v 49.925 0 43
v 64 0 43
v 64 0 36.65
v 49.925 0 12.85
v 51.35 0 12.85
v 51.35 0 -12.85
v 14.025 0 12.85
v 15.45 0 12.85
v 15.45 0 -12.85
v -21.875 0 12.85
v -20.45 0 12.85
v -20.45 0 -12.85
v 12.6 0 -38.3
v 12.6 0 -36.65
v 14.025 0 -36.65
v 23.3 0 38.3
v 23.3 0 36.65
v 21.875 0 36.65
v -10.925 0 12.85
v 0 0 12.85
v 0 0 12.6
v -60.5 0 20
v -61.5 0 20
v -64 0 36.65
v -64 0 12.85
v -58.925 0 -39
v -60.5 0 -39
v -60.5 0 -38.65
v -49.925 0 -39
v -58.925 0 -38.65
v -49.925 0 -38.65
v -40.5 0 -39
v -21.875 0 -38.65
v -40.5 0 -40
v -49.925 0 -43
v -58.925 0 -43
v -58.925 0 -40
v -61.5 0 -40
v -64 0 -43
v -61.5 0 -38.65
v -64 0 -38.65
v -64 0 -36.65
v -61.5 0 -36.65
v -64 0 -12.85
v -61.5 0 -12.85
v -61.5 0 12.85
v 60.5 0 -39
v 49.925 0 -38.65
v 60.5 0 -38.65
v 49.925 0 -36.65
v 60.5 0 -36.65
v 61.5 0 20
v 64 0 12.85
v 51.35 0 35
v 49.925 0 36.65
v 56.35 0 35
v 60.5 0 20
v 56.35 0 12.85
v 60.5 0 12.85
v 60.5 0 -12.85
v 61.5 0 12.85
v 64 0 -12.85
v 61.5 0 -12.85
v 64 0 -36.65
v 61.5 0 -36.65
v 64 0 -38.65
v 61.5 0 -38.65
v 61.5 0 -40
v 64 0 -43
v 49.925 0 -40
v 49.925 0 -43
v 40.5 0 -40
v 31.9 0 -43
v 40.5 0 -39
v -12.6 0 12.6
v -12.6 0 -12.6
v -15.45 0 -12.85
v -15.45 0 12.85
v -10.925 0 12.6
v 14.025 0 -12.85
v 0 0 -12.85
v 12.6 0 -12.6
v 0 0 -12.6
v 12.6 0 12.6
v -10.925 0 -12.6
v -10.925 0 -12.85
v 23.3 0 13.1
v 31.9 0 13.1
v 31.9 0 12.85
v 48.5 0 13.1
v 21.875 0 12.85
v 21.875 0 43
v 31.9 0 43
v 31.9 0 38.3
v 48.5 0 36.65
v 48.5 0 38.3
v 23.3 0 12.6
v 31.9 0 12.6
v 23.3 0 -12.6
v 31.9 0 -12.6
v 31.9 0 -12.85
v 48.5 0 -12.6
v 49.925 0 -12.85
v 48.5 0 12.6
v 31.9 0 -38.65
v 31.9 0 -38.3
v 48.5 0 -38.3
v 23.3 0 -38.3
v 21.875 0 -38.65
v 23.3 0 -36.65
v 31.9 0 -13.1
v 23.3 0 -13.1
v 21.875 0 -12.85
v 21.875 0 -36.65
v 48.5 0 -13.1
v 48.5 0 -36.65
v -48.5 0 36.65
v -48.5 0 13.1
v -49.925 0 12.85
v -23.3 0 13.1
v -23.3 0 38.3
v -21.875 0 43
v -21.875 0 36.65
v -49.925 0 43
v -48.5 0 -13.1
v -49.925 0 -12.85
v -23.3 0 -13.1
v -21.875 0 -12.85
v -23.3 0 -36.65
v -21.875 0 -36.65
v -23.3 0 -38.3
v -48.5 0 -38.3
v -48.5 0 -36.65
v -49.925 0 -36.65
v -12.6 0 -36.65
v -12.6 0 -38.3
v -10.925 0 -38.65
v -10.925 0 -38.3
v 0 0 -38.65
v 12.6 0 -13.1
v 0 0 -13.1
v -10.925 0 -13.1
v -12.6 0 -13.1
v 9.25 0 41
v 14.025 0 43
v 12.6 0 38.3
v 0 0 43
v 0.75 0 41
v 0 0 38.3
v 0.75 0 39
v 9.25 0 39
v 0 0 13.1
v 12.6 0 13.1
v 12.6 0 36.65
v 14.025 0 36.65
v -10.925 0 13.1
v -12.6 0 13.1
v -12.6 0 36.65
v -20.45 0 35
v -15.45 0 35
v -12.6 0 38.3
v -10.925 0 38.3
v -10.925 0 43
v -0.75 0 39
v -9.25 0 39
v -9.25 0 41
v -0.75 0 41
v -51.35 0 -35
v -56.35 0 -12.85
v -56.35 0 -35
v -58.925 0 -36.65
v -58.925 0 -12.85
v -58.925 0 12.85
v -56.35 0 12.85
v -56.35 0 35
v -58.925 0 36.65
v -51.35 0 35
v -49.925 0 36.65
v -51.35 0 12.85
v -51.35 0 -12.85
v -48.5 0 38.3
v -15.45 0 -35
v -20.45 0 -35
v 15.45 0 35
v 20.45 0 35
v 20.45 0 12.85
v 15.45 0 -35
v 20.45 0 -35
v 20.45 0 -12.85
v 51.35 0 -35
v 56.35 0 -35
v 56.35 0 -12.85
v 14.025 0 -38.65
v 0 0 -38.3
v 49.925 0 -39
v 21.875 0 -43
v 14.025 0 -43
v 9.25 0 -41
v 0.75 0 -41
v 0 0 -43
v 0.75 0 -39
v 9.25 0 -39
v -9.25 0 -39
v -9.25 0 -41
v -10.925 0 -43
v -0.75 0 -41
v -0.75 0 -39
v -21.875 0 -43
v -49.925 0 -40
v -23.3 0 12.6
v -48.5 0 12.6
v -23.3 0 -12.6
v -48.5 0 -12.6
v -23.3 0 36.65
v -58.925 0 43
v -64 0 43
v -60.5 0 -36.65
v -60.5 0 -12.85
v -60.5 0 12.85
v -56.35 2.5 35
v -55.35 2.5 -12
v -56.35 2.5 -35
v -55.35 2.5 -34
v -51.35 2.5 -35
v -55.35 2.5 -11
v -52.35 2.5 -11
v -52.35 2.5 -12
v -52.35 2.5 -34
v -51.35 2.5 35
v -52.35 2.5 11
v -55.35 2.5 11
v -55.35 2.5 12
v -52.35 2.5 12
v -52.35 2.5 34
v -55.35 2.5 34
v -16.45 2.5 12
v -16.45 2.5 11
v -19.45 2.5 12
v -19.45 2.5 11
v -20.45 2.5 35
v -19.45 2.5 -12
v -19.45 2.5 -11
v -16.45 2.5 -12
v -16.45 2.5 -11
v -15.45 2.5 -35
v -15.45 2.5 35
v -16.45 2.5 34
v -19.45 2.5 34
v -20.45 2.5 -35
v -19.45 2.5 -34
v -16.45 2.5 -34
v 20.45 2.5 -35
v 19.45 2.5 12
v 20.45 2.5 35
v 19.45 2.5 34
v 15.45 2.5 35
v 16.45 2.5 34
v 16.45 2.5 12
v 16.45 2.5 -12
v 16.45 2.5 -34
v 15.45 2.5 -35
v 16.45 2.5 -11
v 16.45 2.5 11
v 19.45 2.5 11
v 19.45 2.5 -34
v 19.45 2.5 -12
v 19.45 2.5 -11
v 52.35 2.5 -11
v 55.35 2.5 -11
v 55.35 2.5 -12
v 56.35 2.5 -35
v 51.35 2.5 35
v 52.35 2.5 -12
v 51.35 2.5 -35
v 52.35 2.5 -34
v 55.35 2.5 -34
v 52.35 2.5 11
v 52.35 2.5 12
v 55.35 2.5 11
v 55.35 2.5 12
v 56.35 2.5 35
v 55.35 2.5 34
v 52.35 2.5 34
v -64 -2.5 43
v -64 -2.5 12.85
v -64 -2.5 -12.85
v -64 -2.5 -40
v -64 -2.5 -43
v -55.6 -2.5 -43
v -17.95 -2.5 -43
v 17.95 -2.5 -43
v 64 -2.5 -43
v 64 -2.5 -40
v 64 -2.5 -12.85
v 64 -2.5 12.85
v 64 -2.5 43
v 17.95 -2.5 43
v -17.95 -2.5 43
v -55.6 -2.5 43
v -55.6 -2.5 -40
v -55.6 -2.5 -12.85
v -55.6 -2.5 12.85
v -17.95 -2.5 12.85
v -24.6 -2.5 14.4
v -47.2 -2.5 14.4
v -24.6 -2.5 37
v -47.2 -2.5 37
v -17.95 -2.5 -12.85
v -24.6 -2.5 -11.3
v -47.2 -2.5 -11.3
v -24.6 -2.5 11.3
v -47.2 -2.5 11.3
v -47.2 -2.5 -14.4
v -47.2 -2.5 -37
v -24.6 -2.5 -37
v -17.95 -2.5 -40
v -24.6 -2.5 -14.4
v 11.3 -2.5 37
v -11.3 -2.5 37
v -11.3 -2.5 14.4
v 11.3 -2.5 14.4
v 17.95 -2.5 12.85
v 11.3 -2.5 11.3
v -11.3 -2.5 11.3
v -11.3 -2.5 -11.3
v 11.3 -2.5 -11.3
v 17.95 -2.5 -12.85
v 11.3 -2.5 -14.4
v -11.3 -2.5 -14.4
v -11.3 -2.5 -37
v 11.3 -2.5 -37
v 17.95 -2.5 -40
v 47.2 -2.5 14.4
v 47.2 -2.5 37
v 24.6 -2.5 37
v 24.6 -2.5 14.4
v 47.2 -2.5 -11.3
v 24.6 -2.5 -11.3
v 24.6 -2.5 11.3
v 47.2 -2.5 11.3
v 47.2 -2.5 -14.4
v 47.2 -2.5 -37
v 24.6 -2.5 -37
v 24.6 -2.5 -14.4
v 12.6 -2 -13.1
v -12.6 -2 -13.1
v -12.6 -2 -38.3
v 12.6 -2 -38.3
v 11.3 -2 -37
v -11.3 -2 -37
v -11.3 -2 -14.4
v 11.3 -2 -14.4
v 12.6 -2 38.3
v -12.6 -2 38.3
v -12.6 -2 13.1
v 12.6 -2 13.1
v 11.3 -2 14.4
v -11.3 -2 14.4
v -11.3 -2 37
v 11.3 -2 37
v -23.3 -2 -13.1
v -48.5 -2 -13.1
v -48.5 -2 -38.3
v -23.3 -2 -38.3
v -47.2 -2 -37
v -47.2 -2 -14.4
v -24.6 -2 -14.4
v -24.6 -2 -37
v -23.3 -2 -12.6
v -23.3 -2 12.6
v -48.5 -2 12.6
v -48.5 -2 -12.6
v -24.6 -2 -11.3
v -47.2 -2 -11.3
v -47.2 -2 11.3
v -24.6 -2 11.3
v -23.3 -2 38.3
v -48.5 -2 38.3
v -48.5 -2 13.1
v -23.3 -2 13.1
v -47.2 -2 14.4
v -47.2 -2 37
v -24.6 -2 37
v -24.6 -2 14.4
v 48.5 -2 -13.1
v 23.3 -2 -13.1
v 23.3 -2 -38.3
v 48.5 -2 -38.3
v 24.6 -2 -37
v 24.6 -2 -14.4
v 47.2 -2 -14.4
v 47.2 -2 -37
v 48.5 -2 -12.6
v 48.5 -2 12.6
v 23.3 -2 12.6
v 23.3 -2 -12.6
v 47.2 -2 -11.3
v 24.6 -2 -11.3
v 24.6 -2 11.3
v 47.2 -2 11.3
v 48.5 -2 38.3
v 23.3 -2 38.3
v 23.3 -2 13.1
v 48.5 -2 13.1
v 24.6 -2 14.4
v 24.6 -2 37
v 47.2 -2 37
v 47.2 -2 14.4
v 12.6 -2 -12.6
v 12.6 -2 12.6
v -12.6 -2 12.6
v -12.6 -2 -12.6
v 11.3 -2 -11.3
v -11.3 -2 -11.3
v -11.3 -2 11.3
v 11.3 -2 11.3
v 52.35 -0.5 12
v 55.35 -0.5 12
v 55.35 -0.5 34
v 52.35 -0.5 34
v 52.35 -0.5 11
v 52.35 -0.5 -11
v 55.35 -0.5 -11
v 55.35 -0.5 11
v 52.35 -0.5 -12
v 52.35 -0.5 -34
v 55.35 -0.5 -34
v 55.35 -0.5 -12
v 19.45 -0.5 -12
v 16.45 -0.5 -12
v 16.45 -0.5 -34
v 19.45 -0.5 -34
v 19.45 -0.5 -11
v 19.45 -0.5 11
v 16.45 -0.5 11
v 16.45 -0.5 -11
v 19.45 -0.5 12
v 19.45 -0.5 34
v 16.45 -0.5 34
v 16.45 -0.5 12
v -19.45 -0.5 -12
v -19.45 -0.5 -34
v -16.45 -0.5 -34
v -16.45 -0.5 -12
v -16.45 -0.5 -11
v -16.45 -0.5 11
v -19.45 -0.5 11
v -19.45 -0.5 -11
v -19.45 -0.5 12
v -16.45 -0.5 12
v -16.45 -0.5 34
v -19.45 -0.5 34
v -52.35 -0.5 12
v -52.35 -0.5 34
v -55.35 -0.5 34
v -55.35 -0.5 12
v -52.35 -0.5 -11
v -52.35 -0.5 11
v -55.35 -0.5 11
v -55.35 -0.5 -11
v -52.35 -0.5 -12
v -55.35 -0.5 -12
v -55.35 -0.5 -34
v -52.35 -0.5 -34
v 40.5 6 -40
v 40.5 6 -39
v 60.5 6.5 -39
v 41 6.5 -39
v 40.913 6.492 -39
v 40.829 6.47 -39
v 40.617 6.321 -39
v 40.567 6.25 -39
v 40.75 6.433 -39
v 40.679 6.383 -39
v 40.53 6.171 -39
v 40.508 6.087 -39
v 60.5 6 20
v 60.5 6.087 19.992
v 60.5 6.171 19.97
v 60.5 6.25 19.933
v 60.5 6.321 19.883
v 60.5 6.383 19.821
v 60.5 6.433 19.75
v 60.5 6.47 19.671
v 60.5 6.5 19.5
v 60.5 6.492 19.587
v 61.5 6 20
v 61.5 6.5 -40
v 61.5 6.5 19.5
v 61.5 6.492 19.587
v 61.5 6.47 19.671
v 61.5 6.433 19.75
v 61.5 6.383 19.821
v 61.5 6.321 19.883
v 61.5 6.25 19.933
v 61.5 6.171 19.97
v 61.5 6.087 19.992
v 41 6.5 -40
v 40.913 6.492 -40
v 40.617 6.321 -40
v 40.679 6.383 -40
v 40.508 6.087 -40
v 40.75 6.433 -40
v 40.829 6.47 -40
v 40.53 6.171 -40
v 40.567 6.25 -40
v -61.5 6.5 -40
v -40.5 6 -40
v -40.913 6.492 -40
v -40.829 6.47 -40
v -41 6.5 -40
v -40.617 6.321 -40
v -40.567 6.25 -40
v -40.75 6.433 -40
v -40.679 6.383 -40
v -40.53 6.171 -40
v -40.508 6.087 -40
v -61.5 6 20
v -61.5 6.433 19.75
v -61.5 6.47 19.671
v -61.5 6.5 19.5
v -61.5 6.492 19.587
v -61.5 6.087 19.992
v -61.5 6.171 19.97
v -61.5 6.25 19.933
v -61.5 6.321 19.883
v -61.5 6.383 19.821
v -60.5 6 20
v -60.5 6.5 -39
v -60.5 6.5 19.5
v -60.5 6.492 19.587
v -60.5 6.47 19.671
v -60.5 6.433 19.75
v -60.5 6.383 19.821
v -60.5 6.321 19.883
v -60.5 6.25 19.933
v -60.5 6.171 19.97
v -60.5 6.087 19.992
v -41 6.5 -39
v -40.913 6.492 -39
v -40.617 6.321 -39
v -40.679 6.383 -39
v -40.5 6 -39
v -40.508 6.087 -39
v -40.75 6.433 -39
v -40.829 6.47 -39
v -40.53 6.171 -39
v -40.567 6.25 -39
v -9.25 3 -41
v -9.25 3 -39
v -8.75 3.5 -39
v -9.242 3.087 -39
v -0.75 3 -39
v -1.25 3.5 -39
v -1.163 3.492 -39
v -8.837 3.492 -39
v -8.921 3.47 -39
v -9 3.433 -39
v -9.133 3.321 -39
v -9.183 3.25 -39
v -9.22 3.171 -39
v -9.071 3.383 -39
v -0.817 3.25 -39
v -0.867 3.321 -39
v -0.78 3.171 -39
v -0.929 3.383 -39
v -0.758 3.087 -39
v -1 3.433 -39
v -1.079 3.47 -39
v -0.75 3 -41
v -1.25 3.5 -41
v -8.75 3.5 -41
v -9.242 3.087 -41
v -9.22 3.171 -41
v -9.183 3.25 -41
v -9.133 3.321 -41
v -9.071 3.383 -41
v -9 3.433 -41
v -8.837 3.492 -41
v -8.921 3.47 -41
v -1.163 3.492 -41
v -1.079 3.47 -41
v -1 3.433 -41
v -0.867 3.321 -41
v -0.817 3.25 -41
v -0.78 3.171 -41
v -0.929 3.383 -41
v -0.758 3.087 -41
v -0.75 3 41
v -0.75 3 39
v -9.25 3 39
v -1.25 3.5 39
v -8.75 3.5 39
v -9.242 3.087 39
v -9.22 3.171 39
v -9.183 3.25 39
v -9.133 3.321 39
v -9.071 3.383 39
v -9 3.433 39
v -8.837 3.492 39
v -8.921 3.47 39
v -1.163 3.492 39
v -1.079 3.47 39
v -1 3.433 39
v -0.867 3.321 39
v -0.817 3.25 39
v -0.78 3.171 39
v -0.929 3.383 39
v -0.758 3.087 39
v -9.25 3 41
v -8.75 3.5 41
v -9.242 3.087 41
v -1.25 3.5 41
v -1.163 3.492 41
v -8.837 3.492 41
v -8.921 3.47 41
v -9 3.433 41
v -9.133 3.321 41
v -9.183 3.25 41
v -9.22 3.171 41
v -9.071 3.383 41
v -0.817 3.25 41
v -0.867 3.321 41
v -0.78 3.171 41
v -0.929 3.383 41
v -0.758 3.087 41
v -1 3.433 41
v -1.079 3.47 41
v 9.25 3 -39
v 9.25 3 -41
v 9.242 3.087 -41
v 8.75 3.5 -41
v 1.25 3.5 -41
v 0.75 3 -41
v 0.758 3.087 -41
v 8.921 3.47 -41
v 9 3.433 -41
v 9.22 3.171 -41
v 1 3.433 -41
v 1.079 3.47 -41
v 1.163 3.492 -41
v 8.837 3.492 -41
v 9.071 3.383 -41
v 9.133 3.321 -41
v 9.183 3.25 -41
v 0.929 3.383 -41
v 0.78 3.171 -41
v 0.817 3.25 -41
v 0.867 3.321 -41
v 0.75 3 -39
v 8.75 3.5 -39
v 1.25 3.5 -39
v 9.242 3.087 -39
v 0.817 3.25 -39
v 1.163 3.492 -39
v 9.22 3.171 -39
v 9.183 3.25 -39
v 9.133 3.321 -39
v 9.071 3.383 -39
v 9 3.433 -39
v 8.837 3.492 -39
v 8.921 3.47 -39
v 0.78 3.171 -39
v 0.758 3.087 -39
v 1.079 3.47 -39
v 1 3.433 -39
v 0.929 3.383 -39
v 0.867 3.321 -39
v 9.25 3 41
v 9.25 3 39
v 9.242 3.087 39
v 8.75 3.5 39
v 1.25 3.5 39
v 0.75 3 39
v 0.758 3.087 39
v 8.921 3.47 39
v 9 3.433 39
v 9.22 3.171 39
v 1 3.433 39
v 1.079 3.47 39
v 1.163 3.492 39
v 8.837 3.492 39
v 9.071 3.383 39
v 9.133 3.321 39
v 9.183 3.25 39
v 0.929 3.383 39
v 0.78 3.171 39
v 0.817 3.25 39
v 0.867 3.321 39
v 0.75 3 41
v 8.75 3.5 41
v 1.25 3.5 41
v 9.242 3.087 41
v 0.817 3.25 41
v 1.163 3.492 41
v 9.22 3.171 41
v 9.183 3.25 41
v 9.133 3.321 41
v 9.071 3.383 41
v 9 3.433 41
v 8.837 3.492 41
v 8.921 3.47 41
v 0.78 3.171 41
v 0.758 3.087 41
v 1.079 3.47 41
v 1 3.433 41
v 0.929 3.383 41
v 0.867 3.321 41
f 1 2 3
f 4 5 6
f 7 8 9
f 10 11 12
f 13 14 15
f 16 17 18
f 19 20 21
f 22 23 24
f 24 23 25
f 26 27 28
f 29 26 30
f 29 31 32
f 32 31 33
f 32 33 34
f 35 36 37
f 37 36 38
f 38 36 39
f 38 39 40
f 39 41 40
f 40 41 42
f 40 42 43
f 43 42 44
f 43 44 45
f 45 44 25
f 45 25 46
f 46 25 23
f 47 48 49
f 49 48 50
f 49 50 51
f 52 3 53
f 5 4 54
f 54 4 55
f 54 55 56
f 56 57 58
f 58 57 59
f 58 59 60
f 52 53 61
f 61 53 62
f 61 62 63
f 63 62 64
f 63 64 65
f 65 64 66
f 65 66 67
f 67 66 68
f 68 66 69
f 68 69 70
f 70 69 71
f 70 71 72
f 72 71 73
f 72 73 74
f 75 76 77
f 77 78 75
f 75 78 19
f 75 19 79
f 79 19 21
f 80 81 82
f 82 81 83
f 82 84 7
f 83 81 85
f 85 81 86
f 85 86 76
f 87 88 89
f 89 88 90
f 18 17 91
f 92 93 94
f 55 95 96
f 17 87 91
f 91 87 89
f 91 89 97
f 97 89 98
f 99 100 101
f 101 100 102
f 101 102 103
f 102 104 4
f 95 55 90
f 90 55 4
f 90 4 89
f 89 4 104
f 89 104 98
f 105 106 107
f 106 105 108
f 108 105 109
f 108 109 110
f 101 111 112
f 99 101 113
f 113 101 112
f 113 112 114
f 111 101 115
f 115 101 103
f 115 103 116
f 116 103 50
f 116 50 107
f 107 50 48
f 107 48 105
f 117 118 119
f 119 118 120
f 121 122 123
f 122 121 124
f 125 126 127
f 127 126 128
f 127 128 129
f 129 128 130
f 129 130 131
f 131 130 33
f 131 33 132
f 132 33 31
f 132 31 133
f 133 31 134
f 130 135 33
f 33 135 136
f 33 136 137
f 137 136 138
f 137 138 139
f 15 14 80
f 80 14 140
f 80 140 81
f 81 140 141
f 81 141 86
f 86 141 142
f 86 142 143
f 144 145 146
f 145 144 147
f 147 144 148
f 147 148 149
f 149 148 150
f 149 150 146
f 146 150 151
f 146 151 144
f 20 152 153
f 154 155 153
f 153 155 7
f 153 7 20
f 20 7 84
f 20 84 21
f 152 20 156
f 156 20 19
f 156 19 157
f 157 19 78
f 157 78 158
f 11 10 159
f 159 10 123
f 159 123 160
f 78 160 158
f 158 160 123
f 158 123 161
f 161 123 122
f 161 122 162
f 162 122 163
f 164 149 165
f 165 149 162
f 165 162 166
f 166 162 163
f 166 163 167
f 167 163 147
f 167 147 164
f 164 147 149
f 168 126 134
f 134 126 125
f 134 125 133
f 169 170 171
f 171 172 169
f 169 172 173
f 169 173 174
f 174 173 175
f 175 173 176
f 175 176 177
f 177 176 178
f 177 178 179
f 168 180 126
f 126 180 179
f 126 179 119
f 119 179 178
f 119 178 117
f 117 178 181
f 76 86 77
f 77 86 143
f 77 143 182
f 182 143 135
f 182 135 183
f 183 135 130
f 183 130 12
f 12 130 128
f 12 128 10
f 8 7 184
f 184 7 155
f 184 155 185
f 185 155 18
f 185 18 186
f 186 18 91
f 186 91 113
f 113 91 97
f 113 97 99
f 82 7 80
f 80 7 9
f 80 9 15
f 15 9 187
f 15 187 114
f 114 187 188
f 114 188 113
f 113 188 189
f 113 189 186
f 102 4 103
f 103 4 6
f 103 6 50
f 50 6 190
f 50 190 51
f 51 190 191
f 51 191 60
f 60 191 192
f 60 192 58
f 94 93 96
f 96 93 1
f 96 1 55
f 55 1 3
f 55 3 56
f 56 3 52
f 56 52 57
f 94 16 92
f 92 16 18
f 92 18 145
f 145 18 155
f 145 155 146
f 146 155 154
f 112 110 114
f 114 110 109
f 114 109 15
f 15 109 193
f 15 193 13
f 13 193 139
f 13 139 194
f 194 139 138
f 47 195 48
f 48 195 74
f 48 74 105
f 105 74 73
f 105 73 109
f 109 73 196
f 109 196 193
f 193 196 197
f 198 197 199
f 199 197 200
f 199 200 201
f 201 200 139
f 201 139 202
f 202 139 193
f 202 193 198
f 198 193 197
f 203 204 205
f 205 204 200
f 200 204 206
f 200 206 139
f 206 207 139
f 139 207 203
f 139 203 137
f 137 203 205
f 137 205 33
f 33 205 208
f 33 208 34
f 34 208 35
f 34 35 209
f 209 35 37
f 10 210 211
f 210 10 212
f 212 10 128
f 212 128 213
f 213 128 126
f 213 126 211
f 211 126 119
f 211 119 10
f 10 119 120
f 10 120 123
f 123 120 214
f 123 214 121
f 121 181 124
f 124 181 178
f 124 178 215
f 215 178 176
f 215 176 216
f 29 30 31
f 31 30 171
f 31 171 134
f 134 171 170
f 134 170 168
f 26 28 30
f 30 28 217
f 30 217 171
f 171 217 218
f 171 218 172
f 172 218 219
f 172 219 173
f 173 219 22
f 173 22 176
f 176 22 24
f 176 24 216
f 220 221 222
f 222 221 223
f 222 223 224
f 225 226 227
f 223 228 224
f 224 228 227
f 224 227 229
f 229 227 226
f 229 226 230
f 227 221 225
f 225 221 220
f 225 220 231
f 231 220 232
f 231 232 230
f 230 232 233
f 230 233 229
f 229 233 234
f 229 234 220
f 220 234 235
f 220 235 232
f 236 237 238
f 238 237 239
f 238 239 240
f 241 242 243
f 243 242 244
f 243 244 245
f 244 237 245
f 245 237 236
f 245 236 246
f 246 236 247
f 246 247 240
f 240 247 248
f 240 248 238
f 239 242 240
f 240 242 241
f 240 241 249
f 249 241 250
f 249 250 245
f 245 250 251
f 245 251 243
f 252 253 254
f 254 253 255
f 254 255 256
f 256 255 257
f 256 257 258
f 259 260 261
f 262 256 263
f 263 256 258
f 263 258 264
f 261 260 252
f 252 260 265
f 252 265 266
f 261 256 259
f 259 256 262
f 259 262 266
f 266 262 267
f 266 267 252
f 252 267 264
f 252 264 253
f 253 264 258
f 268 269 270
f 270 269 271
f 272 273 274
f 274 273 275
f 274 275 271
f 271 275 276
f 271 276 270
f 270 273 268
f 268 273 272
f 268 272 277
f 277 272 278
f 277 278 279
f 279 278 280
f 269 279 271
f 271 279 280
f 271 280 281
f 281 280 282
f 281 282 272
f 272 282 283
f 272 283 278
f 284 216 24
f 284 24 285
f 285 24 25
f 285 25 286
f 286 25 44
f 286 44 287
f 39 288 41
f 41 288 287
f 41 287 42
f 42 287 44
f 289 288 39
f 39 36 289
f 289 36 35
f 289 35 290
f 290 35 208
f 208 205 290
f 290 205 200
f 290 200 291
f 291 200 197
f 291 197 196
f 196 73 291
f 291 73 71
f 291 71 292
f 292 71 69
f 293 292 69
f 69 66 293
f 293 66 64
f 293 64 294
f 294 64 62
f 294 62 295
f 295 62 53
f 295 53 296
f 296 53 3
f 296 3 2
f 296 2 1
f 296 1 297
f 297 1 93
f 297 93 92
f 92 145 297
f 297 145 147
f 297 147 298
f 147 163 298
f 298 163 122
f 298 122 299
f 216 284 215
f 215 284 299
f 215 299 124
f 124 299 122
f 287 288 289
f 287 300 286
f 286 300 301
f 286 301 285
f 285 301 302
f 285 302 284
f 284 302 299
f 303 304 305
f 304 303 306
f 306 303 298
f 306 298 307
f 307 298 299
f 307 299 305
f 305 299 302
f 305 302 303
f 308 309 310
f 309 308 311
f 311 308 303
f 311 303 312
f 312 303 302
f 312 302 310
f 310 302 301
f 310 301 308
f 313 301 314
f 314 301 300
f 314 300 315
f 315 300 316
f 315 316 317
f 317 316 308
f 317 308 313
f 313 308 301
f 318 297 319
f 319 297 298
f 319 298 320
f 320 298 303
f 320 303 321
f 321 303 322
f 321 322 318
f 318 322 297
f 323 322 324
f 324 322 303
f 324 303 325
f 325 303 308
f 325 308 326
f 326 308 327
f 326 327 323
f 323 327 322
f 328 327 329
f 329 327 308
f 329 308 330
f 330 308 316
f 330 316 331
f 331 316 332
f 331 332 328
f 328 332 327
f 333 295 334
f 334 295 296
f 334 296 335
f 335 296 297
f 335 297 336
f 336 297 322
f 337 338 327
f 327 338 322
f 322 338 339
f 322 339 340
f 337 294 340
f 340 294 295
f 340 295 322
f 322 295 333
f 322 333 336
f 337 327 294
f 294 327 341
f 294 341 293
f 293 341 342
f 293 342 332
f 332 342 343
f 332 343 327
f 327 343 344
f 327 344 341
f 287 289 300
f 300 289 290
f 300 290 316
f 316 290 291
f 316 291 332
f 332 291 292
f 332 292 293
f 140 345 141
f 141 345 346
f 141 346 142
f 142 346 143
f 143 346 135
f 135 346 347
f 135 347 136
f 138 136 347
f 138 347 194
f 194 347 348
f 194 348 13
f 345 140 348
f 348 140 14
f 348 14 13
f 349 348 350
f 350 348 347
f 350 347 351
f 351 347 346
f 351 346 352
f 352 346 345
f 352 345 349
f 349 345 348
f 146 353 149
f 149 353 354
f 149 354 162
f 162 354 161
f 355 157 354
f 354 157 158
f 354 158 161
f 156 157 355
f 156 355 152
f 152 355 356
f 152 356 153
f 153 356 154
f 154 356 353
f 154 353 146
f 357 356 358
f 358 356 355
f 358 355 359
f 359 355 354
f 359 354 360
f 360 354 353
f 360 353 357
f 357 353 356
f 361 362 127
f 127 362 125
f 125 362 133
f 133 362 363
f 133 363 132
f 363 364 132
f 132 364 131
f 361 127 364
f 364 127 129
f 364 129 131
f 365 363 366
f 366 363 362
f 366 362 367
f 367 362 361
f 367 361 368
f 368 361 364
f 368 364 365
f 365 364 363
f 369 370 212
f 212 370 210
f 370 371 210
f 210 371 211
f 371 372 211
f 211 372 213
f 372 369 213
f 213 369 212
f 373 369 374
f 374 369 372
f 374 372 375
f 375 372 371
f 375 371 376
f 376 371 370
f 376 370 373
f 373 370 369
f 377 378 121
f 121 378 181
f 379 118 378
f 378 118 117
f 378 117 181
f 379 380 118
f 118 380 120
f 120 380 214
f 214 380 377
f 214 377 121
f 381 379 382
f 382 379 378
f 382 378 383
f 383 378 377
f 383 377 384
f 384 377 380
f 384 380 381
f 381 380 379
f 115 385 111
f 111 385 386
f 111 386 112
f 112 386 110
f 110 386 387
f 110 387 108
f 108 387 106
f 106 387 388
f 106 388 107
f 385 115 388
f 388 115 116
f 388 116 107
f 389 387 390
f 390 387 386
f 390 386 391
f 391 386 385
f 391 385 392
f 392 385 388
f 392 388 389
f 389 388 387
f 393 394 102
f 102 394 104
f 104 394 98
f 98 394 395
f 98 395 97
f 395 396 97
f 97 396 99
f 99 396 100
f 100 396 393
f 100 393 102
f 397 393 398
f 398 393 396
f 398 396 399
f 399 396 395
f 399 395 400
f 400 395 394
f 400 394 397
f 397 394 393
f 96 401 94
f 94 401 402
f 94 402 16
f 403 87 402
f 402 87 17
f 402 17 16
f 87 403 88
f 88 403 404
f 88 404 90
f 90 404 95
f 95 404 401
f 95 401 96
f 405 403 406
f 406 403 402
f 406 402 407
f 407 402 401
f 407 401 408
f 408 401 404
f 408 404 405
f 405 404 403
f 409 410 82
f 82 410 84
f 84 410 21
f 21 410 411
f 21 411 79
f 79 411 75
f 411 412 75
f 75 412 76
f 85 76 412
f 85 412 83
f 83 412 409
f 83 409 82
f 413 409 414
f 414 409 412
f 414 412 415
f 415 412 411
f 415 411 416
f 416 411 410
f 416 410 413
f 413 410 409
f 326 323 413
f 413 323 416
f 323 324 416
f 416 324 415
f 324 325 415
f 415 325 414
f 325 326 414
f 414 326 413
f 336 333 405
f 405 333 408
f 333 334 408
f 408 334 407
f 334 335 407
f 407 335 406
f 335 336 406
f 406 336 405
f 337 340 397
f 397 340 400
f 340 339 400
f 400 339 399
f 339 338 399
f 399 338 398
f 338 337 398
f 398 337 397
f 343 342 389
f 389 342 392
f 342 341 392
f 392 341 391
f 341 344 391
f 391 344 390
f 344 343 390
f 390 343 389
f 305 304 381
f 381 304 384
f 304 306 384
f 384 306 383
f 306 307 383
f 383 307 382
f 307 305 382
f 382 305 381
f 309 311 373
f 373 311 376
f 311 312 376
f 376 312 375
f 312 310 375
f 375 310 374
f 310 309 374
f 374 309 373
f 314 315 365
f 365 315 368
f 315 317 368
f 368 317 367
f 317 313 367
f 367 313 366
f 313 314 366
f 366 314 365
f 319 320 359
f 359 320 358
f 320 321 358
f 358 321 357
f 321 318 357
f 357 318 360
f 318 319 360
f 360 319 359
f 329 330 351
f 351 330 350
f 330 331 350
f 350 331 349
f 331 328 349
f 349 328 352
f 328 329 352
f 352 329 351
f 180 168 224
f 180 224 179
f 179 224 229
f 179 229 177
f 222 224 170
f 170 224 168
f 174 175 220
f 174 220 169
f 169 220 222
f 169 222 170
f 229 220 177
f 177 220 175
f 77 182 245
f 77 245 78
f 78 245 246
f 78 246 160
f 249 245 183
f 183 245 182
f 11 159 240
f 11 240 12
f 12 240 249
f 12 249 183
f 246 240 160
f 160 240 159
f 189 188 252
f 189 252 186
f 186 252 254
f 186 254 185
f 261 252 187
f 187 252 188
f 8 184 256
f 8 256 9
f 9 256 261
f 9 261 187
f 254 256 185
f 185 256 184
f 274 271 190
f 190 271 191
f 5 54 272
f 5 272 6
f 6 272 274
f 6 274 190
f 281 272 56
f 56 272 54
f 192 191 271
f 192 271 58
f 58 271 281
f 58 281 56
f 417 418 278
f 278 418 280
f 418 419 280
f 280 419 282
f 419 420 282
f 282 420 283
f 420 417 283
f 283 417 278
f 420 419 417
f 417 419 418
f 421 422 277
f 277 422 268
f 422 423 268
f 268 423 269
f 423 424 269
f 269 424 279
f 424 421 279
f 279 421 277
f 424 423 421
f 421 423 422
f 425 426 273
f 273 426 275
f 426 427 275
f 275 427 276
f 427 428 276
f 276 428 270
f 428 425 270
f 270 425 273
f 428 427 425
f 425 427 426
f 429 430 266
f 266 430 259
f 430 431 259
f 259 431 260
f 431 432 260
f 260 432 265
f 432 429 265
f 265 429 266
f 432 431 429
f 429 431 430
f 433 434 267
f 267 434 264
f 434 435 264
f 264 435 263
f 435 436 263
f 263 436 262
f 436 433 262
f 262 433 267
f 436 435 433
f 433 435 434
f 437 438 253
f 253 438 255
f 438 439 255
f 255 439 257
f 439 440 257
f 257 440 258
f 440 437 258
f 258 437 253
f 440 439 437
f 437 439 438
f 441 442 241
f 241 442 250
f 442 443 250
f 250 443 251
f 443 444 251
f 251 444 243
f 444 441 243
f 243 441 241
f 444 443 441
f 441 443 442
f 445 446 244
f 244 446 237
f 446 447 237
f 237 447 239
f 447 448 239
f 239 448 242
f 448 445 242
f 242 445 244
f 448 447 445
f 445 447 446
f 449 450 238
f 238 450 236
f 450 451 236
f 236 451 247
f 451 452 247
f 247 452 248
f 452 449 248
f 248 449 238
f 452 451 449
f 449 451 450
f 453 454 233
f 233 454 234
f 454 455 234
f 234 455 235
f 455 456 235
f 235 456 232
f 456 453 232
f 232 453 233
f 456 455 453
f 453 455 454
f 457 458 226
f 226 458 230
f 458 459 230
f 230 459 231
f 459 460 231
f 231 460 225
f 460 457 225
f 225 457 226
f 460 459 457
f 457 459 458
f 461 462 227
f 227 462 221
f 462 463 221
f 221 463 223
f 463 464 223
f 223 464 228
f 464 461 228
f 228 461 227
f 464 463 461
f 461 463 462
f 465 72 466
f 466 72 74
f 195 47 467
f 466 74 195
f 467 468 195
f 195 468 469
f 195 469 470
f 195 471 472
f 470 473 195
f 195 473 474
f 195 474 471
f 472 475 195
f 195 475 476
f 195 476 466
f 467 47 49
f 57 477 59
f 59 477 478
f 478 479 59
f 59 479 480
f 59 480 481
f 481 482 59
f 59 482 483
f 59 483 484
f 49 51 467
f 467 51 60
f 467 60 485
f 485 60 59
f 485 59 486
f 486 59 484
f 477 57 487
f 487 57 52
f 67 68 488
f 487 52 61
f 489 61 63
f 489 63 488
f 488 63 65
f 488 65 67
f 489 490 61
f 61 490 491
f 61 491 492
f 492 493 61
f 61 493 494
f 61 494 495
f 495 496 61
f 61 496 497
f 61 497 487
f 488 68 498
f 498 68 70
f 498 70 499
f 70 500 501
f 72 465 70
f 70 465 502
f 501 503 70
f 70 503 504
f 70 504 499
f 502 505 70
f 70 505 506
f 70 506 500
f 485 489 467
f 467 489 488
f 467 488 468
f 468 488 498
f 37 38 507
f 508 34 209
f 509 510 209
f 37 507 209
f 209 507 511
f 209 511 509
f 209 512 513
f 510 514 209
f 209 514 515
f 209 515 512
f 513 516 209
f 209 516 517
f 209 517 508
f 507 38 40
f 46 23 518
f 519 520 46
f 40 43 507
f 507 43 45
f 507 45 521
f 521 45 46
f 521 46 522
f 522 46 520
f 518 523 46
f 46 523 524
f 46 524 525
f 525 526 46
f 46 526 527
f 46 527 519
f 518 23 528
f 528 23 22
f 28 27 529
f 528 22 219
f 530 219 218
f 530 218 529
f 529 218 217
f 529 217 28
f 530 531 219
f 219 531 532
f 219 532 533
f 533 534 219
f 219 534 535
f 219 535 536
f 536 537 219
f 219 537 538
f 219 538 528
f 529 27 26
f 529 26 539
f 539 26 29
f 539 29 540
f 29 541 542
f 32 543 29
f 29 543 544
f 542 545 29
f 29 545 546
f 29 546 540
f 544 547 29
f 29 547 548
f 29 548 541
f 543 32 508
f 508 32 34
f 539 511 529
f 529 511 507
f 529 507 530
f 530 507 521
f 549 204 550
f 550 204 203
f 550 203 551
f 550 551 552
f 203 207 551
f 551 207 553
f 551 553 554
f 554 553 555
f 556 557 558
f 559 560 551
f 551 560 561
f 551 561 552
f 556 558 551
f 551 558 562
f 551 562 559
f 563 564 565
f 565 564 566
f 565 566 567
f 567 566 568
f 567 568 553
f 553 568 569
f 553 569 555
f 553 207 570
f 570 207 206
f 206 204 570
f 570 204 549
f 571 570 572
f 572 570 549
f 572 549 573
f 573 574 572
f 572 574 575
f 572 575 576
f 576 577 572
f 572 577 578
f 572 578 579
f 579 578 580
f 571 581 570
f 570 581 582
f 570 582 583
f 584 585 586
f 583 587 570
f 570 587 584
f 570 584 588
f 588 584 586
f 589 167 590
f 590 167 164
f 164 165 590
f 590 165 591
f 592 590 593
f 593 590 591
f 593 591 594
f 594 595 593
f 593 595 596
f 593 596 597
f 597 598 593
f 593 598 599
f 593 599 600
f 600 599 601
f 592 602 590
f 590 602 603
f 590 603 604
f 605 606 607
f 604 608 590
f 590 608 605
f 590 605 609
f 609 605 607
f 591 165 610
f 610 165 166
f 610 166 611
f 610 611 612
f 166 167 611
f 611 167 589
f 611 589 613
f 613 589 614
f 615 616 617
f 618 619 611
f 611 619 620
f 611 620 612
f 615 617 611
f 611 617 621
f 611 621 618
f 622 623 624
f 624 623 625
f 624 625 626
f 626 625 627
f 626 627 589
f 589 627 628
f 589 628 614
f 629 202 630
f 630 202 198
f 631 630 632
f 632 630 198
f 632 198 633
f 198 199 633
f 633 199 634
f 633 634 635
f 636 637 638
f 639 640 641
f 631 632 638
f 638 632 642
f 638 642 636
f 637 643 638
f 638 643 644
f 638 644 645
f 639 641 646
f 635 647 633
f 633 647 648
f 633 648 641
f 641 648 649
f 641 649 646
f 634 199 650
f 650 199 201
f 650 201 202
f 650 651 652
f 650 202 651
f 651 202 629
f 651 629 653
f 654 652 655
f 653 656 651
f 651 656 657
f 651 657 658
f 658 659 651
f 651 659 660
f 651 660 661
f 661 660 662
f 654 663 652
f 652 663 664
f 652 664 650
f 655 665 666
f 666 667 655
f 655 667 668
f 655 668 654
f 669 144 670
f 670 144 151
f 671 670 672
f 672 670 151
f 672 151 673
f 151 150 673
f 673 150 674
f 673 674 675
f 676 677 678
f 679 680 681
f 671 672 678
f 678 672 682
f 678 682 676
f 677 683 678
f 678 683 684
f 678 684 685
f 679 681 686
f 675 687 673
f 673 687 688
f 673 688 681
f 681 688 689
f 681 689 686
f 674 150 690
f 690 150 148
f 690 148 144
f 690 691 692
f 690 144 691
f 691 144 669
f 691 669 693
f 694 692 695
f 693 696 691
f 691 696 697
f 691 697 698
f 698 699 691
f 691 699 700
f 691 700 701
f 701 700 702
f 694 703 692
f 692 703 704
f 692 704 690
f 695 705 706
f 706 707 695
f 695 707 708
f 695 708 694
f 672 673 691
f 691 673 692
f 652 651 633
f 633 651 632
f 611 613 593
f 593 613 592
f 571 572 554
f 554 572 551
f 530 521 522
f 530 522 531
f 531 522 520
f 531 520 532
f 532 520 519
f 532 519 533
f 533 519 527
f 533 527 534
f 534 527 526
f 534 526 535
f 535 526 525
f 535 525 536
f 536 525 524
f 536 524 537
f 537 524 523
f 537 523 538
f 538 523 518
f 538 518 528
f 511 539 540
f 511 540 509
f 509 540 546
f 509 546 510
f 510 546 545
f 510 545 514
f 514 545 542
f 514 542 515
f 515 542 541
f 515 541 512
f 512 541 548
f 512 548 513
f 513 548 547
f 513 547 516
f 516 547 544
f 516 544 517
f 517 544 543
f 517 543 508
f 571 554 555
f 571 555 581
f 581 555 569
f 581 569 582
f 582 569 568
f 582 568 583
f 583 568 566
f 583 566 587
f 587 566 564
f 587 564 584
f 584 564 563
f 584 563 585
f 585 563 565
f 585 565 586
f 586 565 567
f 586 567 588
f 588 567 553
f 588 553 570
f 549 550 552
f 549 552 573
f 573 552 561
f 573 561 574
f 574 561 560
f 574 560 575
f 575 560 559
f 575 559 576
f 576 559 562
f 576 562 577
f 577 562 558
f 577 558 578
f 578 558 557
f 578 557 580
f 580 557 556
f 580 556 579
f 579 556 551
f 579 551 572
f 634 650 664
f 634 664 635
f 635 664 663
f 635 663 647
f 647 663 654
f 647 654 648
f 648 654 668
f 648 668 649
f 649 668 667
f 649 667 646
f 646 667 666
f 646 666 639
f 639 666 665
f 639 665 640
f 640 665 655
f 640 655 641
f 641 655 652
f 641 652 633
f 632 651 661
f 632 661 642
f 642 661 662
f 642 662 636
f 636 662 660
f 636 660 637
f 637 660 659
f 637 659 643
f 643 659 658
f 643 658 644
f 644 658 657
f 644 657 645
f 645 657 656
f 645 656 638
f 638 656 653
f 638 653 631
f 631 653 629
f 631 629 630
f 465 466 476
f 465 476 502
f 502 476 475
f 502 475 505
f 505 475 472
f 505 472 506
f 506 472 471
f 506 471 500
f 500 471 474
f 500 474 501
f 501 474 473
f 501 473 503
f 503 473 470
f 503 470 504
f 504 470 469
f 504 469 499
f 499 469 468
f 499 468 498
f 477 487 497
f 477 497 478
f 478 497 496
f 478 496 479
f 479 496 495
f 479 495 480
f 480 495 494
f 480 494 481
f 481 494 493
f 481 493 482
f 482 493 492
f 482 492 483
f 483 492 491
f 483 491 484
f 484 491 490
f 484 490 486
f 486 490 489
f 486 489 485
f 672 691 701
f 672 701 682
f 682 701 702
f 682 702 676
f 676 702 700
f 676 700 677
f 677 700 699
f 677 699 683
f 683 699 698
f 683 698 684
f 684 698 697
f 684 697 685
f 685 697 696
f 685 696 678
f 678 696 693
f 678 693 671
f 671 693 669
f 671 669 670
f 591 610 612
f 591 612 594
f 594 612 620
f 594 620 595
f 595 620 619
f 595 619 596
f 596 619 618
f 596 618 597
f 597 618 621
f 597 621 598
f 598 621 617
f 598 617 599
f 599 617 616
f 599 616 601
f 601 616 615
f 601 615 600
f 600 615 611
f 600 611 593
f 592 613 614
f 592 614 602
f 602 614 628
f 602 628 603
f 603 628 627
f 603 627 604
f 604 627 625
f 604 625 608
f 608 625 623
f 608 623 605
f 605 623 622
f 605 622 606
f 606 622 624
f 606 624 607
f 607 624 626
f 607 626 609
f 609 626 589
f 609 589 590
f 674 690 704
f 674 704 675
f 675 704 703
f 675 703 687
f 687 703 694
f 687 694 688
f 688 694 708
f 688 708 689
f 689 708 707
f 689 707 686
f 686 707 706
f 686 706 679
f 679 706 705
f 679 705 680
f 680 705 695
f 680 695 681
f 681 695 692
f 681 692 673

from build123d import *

# Parameters (mm, degrees)
SKETCH2_W           = 128
SKETCH2_H           = 86
BOSS_EXTRUDE1_DEPTH = 2.5
SKETCH3_W           = 25.2
SKETCH3_H           = 25.2
SKETCH3_H_2         = 12.6
CUT_EXTRUDE1_DEPTH  = 2
SKETCH4_W           = 22.6
SKETCH4_H           = 22.6
CUT_EXTRUDE2_DEPTH  = 2.5
SKETCH5_W           = 5
SKETCH5_H           = 70
BOSS_EXTRUDE2_DEPTH = 2.5
SKETCH7_W           = 3
SKETCH7_H           = 22
CUT_EXTRUDE6_DEPTH  = 3
SKETCH9_W           = 8.5
SKETCH9_H           = 2
BOSS_EXTRUDE3_DEPTH = 6.5
CUT_EXTRUDE9_START  = 3.5
SKETCH10_W          = 8.5
SKETCH10_H          = 2
CUT_EXTRUDE9_DEPTH  = 74.877322259
FILLET1_R           = 0.5


with BuildPart() as part:
    # Sketch2 → Boss-Extrude1 (new body)
    with BuildSketch(Plane(origin=(0, 0, 0), x_dir=(1, 0, 0), z_dir=(0, 1, 0))):
        Rectangle(SKETCH2_W, SKETCH2_H)
    extrude(amount=-BOSS_EXTRUDE1_DEPTH)

    # Sketch3 → Cut-Extrude1 (cut)
    with BuildSketch(Plane(origin=(0, 0, 0), x_dir=(1, 0, 0), z_dir=(0, 1, 0))):
        with Locations((0, 25.7)):
            Rectangle(SKETCH3_W, SKETCH3_H)
        with Locations((35.9, 25.7)):
            Rectangle(SKETCH3_W, SKETCH3_H)
        with Locations((35.9, 6.3)):
            Rectangle(SKETCH3_W, SKETCH3_H_2)
        with Locations((35.9, -6.3)):
            Rectangle(SKETCH3_W, SKETCH3_H_2)
        with Locations((35.9, -25.7)):
            Rectangle(SKETCH3_W, SKETCH3_H)
        with Locations((0, 6.3)):
            Rectangle(SKETCH3_W, SKETCH3_H_2)
        with Locations((0, -6.3)):
            Rectangle(SKETCH3_W, SKETCH3_H_2)
        with Locations((0, -25.7)):
            Rectangle(SKETCH3_W, SKETCH3_H)
        with Locations((-35.9, 25.7)):
            Rectangle(SKETCH3_W, SKETCH3_H)
        with Locations((-35.9, 6.3)):
            Rectangle(SKETCH3_W, SKETCH3_H_2)
        with Locations((-35.9, -6.3)):
            Rectangle(SKETCH3_W, SKETCH3_H_2)
        with Locations((-35.9, -25.7)):
            Rectangle(SKETCH3_W, SKETCH3_H)
    extrude(amount=-CUT_EXTRUDE1_DEPTH, mode=Mode.SUBTRACT)

    # Sketch4 → Cut-Extrude2 (cut)
    with BuildSketch(Plane(origin=(0, 0, 0), x_dir=(1, 0, 0), z_dir=(0, 1, 0))):
        Rectangle(SKETCH4_W, SKETCH4_H)
        with Locations((0, 25.7)):
            Rectangle(SKETCH4_W, SKETCH4_H)
        with Locations((0, -25.7)):
            Rectangle(SKETCH4_W, SKETCH4_H)
        with Locations((35.9, -25.7)):
            Rectangle(SKETCH4_W, SKETCH4_H)
        with Locations((35.9, 0)):
            Rectangle(SKETCH4_W, SKETCH4_H)
        with Locations((35.9, 25.7)):
            Rectangle(SKETCH4_W, SKETCH4_H)
        with Locations((-35.9, -25.7)):
            Rectangle(SKETCH4_W, SKETCH4_H)
        with Locations((-35.9, 0)):
            Rectangle(SKETCH4_W, SKETCH4_H)
        with Locations((-35.9, 25.7)):
            Rectangle(SKETCH4_W, SKETCH4_H)
    extrude(amount=-CUT_EXTRUDE2_DEPTH, mode=Mode.SUBTRACT)

    # Sketch5 → Boss-Extrude2 (add)
    with BuildSketch(Plane(origin=(0, 0, 0), x_dir=(1, 0, 0), z_dir=(0, 1, 0))):
        with Locations((-53.85, 0)):
            Rectangle(SKETCH5_W, SKETCH5_H)
        with Locations((-17.95, 0)):
            Rectangle(SKETCH5_W, SKETCH5_H)
        with Locations((17.95, 0)):
            Rectangle(SKETCH5_W, SKETCH5_H)
        with Locations((53.85, 0)):
            Rectangle(SKETCH5_W, SKETCH5_H)
    extrude(amount=BOSS_EXTRUDE2_DEPTH)

    # Sketch7 → Cut-Extrude6 (cut)
    with BuildSketch(Plane(origin=(0, 2.5, 0), x_dir=(1, 0, 0), z_dir=(0, 1, 0))):
        with Locations((-17.95, 23)):
            Rectangle(SKETCH7_W, SKETCH7_H)
        with Locations((-17.95, 0)):
            Rectangle(SKETCH7_W, SKETCH7_H)
        with Locations((-17.95, -23)):
            Rectangle(SKETCH7_W, SKETCH7_H)
        with Locations((17.95, 23)):
            Rectangle(SKETCH7_W, SKETCH7_H)
        with Locations((17.95, 0)):
            Rectangle(SKETCH7_W, SKETCH7_H)
        with Locations((17.95, -23)):
            Rectangle(SKETCH7_W, SKETCH7_H)
        with Locations((53.85, 23)):
            Rectangle(SKETCH7_W, SKETCH7_H)
        with Locations((53.85, 0)):
            Rectangle(SKETCH7_W, SKETCH7_H)
        with Locations((-53.85, 23)):
            Rectangle(SKETCH7_W, SKETCH7_H)
        with Locations((-53.85, 0)):
            Rectangle(SKETCH7_W, SKETCH7_H)
        with Locations((-53.85, -23)):
            Rectangle(SKETCH7_W, SKETCH7_H)
        with Locations((53.85, -23)):
            Rectangle(SKETCH7_W, SKETCH7_H)
    extrude(amount=-CUT_EXTRUDE6_DEPTH, mode=Mode.SUBTRACT)

    # Sketch9 → Boss-Extrude3 (add)
    with BuildSketch(Plane(origin=(0, 0, 0), x_dir=(1, 0, 0), z_dir=(0, 1, 0))):
        Polygon((-61.5, -20), (-60.5, -20), (-60.5, 39), (-40.5, 39), (-40.5, 40), (-61.5, 40), align=None)
        Polygon((40.5, 40), (61.5, 40), (61.5, -20), (60.5, -20), (60.5, 39), (40.5, 39), align=None)
        with Locations((-5, 40)):
            Rectangle(SKETCH9_W, SKETCH9_H)
        with Locations((5, 40)):
            Rectangle(SKETCH9_W, SKETCH9_H)
        with Locations((-5, -40)):
            Rectangle(SKETCH9_W, SKETCH9_H)
        with Locations((5, -40)):
            Rectangle(SKETCH9_W, SKETCH9_H)
    extrude(amount=BOSS_EXTRUDE3_DEPTH)

    # Sketch10 → Cut-Extrude9 (cut, through all)
    with BuildSketch(Plane(origin=(0, 0, 0), x_dir=(1, 0, 0), z_dir=(0, 1, 0)).offset(CUT_EXTRUDE9_START)):
        with Locations((-5, 40)):
            Rectangle(SKETCH10_W, SKETCH10_H)
        with Locations((5, 40)):
            Rectangle(SKETCH10_W, SKETCH10_H)
        with Locations((-5, -40)):
            Rectangle(SKETCH10_W, SKETCH10_H)
        with Locations((5, -40)):
            Rectangle(SKETCH10_W, SKETCH10_H)
    extrude(amount=CUT_EXTRUDE9_DEPTH, mode=Mode.SUBTRACT)

    # Fillet1
    fillet1_edges = [part.edges().sort_by_distance(p)[0] for p in [
        (40.5, 6.5, -39.5),
        (61, 6.5, 20),
        (-61, 6.5, 20),
        (-40.5, 6.5, -39.5),
        (0.75, 3.5, -40),
        (9.25, 3.5, -40),
        (-9.25, 3.5, 40),
        (-0.75, 3.5, 40),
        (0.75, 3.5, 40),
        (9.25, 3.5, 40),
        (-9.25, 3.5, -40),
        (-0.75, 3.5, -40),
    ]]
    fillet(fillet1_edges, radius=FILLET1_R)


solid = part.part
